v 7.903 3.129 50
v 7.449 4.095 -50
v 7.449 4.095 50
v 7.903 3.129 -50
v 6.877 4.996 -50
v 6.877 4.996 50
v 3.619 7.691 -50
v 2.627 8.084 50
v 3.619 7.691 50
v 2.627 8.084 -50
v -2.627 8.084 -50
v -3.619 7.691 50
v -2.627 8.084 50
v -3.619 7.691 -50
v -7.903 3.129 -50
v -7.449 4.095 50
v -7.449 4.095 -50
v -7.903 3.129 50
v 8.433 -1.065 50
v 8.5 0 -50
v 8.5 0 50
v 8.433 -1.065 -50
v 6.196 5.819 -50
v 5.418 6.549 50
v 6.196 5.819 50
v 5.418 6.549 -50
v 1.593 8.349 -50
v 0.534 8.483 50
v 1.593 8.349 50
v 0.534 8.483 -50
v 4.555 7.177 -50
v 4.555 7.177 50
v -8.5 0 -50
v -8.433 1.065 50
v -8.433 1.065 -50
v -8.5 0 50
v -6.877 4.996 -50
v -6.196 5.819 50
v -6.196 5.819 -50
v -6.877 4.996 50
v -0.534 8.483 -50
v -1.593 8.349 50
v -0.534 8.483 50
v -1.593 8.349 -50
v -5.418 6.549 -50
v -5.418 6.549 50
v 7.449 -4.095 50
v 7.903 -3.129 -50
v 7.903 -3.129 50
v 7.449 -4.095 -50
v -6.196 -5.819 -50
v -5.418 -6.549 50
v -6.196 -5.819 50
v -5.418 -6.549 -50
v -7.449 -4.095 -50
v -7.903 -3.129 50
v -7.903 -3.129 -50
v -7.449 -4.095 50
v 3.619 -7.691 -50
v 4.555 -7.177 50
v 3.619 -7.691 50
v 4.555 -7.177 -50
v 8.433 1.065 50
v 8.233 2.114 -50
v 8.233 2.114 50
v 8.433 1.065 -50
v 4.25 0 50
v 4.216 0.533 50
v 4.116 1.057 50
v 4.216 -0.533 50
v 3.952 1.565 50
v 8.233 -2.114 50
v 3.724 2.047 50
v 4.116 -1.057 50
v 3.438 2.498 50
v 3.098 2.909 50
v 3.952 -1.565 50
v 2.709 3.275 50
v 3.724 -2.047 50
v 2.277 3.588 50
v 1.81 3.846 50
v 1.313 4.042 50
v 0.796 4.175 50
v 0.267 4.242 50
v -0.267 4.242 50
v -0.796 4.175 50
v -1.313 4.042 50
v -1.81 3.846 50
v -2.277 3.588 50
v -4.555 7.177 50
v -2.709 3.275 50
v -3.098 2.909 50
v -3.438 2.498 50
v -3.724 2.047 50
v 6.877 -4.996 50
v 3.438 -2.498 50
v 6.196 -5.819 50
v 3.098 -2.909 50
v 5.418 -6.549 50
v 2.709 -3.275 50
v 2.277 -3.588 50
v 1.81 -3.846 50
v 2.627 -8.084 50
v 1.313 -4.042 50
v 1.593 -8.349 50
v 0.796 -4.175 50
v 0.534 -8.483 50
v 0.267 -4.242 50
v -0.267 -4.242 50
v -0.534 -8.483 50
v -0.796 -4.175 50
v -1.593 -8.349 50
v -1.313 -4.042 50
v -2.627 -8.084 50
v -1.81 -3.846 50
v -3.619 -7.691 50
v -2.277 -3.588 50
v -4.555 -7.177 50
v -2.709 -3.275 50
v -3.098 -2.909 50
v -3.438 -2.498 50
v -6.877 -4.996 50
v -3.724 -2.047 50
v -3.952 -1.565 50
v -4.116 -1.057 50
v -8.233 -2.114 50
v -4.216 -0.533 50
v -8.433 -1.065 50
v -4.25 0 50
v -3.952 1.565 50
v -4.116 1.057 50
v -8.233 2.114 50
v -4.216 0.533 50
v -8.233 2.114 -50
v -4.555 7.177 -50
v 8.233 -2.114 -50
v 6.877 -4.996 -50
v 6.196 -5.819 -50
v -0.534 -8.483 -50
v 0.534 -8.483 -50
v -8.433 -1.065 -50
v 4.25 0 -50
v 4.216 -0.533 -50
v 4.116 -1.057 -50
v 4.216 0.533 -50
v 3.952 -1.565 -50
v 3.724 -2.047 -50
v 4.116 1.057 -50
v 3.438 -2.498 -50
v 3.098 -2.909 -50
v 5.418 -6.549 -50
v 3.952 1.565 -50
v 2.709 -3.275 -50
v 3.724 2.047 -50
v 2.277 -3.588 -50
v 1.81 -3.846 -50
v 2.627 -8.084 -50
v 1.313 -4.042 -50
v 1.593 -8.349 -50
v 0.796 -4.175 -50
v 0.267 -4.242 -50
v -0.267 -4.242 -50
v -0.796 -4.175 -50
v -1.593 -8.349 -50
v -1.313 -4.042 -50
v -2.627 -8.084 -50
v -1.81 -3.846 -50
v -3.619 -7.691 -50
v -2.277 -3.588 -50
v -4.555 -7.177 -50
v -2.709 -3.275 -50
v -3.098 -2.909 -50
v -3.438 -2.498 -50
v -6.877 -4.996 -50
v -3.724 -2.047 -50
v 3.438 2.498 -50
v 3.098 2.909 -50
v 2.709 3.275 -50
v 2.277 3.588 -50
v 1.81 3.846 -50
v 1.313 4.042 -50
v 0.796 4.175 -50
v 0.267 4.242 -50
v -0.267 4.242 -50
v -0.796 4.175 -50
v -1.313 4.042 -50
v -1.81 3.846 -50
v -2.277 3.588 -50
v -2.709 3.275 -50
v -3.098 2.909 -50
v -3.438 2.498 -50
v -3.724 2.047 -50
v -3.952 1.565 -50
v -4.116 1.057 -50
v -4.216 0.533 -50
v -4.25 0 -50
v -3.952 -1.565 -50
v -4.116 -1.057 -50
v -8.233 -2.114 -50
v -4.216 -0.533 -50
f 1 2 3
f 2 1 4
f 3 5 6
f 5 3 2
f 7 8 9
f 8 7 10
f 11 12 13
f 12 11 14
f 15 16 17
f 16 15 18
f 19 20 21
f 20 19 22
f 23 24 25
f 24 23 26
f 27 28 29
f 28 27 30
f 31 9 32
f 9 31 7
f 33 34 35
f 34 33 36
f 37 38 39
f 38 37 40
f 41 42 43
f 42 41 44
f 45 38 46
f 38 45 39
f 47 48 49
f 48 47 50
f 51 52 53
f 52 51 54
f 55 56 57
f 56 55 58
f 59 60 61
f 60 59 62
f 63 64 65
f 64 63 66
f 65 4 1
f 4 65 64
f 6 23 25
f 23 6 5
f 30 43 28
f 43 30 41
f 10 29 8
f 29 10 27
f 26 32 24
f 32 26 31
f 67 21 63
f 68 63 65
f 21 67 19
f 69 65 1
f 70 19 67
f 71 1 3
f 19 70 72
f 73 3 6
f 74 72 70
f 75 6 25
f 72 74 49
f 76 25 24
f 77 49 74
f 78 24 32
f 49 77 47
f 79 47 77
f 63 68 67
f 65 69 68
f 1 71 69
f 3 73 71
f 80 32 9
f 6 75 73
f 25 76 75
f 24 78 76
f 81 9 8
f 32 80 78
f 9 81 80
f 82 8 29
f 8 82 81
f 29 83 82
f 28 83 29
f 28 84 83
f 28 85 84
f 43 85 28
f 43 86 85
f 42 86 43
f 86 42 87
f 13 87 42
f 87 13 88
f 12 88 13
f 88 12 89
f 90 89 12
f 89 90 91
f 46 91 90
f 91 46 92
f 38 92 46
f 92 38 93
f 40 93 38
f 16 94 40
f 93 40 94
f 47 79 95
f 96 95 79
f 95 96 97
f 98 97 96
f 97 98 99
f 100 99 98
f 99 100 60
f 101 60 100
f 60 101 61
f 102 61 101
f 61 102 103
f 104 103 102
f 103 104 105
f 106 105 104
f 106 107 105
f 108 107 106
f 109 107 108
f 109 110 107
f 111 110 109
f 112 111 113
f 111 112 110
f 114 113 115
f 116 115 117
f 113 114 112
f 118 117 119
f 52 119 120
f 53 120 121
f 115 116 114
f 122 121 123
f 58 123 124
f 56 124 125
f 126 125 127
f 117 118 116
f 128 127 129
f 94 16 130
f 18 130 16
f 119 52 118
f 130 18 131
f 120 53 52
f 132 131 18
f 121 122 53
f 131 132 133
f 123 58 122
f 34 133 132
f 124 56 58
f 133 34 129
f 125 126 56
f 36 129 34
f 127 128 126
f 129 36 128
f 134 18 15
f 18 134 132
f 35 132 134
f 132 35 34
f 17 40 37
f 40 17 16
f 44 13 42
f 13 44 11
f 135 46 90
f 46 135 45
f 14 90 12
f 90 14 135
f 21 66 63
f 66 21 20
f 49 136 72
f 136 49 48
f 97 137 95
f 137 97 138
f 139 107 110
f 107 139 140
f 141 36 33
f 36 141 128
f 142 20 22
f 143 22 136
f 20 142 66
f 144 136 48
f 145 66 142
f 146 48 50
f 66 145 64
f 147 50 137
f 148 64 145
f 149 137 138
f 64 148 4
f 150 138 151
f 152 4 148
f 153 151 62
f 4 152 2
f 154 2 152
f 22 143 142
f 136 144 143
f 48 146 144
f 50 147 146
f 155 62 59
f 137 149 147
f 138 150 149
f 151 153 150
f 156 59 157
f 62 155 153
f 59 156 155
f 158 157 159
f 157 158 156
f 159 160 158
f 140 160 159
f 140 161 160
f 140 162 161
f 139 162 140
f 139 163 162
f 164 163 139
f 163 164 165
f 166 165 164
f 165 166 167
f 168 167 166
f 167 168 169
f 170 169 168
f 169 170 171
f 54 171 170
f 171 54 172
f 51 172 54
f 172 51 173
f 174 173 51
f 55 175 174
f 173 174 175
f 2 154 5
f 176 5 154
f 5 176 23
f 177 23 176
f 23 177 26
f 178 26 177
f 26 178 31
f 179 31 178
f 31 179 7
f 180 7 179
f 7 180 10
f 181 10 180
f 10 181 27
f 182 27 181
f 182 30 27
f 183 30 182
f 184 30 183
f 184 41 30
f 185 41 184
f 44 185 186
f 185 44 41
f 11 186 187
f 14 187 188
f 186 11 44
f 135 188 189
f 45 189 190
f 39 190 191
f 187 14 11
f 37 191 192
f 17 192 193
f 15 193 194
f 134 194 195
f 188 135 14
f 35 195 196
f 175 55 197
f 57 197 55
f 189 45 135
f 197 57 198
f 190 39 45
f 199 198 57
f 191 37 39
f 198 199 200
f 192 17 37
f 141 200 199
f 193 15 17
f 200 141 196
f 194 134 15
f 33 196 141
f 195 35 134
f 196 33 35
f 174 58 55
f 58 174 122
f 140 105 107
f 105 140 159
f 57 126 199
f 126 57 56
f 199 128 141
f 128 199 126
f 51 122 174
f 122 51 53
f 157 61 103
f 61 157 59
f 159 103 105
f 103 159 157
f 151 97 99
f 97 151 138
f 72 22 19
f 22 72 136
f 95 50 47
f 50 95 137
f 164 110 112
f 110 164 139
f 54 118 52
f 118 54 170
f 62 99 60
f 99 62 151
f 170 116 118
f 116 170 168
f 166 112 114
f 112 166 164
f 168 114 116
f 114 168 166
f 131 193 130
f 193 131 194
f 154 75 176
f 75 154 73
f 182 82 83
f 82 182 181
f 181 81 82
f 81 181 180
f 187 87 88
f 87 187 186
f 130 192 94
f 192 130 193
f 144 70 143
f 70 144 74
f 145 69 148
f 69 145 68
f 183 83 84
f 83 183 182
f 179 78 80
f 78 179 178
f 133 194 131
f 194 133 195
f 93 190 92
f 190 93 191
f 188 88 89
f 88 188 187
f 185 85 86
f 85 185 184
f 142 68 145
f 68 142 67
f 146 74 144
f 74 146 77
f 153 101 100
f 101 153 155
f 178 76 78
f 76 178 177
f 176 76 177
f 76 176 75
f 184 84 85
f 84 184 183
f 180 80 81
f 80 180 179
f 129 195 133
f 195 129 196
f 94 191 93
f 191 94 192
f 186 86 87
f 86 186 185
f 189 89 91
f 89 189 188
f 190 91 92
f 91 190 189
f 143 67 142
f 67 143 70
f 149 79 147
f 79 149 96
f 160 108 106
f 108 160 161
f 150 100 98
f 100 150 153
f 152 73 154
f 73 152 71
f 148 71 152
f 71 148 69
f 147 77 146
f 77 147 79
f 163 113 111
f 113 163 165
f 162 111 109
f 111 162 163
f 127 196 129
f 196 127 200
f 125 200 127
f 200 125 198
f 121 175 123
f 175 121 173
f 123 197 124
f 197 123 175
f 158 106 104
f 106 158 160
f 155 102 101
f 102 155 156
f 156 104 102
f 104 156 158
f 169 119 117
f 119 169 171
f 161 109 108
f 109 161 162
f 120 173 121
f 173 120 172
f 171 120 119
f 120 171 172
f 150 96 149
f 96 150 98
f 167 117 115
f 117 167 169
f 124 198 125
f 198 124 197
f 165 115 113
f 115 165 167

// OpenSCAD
$fn = 50;


difference() {
	union() {
		translate(v = [0, 0, -50.0000000000]) {
			cylinder(h = 100, r = 8.5000000000);
		}
	}
	union() {
		translate(v = [0, 0, -100.0000000000]) {
			cylinder(h = 200, r = 4.2500000000);
		}
	}
}
